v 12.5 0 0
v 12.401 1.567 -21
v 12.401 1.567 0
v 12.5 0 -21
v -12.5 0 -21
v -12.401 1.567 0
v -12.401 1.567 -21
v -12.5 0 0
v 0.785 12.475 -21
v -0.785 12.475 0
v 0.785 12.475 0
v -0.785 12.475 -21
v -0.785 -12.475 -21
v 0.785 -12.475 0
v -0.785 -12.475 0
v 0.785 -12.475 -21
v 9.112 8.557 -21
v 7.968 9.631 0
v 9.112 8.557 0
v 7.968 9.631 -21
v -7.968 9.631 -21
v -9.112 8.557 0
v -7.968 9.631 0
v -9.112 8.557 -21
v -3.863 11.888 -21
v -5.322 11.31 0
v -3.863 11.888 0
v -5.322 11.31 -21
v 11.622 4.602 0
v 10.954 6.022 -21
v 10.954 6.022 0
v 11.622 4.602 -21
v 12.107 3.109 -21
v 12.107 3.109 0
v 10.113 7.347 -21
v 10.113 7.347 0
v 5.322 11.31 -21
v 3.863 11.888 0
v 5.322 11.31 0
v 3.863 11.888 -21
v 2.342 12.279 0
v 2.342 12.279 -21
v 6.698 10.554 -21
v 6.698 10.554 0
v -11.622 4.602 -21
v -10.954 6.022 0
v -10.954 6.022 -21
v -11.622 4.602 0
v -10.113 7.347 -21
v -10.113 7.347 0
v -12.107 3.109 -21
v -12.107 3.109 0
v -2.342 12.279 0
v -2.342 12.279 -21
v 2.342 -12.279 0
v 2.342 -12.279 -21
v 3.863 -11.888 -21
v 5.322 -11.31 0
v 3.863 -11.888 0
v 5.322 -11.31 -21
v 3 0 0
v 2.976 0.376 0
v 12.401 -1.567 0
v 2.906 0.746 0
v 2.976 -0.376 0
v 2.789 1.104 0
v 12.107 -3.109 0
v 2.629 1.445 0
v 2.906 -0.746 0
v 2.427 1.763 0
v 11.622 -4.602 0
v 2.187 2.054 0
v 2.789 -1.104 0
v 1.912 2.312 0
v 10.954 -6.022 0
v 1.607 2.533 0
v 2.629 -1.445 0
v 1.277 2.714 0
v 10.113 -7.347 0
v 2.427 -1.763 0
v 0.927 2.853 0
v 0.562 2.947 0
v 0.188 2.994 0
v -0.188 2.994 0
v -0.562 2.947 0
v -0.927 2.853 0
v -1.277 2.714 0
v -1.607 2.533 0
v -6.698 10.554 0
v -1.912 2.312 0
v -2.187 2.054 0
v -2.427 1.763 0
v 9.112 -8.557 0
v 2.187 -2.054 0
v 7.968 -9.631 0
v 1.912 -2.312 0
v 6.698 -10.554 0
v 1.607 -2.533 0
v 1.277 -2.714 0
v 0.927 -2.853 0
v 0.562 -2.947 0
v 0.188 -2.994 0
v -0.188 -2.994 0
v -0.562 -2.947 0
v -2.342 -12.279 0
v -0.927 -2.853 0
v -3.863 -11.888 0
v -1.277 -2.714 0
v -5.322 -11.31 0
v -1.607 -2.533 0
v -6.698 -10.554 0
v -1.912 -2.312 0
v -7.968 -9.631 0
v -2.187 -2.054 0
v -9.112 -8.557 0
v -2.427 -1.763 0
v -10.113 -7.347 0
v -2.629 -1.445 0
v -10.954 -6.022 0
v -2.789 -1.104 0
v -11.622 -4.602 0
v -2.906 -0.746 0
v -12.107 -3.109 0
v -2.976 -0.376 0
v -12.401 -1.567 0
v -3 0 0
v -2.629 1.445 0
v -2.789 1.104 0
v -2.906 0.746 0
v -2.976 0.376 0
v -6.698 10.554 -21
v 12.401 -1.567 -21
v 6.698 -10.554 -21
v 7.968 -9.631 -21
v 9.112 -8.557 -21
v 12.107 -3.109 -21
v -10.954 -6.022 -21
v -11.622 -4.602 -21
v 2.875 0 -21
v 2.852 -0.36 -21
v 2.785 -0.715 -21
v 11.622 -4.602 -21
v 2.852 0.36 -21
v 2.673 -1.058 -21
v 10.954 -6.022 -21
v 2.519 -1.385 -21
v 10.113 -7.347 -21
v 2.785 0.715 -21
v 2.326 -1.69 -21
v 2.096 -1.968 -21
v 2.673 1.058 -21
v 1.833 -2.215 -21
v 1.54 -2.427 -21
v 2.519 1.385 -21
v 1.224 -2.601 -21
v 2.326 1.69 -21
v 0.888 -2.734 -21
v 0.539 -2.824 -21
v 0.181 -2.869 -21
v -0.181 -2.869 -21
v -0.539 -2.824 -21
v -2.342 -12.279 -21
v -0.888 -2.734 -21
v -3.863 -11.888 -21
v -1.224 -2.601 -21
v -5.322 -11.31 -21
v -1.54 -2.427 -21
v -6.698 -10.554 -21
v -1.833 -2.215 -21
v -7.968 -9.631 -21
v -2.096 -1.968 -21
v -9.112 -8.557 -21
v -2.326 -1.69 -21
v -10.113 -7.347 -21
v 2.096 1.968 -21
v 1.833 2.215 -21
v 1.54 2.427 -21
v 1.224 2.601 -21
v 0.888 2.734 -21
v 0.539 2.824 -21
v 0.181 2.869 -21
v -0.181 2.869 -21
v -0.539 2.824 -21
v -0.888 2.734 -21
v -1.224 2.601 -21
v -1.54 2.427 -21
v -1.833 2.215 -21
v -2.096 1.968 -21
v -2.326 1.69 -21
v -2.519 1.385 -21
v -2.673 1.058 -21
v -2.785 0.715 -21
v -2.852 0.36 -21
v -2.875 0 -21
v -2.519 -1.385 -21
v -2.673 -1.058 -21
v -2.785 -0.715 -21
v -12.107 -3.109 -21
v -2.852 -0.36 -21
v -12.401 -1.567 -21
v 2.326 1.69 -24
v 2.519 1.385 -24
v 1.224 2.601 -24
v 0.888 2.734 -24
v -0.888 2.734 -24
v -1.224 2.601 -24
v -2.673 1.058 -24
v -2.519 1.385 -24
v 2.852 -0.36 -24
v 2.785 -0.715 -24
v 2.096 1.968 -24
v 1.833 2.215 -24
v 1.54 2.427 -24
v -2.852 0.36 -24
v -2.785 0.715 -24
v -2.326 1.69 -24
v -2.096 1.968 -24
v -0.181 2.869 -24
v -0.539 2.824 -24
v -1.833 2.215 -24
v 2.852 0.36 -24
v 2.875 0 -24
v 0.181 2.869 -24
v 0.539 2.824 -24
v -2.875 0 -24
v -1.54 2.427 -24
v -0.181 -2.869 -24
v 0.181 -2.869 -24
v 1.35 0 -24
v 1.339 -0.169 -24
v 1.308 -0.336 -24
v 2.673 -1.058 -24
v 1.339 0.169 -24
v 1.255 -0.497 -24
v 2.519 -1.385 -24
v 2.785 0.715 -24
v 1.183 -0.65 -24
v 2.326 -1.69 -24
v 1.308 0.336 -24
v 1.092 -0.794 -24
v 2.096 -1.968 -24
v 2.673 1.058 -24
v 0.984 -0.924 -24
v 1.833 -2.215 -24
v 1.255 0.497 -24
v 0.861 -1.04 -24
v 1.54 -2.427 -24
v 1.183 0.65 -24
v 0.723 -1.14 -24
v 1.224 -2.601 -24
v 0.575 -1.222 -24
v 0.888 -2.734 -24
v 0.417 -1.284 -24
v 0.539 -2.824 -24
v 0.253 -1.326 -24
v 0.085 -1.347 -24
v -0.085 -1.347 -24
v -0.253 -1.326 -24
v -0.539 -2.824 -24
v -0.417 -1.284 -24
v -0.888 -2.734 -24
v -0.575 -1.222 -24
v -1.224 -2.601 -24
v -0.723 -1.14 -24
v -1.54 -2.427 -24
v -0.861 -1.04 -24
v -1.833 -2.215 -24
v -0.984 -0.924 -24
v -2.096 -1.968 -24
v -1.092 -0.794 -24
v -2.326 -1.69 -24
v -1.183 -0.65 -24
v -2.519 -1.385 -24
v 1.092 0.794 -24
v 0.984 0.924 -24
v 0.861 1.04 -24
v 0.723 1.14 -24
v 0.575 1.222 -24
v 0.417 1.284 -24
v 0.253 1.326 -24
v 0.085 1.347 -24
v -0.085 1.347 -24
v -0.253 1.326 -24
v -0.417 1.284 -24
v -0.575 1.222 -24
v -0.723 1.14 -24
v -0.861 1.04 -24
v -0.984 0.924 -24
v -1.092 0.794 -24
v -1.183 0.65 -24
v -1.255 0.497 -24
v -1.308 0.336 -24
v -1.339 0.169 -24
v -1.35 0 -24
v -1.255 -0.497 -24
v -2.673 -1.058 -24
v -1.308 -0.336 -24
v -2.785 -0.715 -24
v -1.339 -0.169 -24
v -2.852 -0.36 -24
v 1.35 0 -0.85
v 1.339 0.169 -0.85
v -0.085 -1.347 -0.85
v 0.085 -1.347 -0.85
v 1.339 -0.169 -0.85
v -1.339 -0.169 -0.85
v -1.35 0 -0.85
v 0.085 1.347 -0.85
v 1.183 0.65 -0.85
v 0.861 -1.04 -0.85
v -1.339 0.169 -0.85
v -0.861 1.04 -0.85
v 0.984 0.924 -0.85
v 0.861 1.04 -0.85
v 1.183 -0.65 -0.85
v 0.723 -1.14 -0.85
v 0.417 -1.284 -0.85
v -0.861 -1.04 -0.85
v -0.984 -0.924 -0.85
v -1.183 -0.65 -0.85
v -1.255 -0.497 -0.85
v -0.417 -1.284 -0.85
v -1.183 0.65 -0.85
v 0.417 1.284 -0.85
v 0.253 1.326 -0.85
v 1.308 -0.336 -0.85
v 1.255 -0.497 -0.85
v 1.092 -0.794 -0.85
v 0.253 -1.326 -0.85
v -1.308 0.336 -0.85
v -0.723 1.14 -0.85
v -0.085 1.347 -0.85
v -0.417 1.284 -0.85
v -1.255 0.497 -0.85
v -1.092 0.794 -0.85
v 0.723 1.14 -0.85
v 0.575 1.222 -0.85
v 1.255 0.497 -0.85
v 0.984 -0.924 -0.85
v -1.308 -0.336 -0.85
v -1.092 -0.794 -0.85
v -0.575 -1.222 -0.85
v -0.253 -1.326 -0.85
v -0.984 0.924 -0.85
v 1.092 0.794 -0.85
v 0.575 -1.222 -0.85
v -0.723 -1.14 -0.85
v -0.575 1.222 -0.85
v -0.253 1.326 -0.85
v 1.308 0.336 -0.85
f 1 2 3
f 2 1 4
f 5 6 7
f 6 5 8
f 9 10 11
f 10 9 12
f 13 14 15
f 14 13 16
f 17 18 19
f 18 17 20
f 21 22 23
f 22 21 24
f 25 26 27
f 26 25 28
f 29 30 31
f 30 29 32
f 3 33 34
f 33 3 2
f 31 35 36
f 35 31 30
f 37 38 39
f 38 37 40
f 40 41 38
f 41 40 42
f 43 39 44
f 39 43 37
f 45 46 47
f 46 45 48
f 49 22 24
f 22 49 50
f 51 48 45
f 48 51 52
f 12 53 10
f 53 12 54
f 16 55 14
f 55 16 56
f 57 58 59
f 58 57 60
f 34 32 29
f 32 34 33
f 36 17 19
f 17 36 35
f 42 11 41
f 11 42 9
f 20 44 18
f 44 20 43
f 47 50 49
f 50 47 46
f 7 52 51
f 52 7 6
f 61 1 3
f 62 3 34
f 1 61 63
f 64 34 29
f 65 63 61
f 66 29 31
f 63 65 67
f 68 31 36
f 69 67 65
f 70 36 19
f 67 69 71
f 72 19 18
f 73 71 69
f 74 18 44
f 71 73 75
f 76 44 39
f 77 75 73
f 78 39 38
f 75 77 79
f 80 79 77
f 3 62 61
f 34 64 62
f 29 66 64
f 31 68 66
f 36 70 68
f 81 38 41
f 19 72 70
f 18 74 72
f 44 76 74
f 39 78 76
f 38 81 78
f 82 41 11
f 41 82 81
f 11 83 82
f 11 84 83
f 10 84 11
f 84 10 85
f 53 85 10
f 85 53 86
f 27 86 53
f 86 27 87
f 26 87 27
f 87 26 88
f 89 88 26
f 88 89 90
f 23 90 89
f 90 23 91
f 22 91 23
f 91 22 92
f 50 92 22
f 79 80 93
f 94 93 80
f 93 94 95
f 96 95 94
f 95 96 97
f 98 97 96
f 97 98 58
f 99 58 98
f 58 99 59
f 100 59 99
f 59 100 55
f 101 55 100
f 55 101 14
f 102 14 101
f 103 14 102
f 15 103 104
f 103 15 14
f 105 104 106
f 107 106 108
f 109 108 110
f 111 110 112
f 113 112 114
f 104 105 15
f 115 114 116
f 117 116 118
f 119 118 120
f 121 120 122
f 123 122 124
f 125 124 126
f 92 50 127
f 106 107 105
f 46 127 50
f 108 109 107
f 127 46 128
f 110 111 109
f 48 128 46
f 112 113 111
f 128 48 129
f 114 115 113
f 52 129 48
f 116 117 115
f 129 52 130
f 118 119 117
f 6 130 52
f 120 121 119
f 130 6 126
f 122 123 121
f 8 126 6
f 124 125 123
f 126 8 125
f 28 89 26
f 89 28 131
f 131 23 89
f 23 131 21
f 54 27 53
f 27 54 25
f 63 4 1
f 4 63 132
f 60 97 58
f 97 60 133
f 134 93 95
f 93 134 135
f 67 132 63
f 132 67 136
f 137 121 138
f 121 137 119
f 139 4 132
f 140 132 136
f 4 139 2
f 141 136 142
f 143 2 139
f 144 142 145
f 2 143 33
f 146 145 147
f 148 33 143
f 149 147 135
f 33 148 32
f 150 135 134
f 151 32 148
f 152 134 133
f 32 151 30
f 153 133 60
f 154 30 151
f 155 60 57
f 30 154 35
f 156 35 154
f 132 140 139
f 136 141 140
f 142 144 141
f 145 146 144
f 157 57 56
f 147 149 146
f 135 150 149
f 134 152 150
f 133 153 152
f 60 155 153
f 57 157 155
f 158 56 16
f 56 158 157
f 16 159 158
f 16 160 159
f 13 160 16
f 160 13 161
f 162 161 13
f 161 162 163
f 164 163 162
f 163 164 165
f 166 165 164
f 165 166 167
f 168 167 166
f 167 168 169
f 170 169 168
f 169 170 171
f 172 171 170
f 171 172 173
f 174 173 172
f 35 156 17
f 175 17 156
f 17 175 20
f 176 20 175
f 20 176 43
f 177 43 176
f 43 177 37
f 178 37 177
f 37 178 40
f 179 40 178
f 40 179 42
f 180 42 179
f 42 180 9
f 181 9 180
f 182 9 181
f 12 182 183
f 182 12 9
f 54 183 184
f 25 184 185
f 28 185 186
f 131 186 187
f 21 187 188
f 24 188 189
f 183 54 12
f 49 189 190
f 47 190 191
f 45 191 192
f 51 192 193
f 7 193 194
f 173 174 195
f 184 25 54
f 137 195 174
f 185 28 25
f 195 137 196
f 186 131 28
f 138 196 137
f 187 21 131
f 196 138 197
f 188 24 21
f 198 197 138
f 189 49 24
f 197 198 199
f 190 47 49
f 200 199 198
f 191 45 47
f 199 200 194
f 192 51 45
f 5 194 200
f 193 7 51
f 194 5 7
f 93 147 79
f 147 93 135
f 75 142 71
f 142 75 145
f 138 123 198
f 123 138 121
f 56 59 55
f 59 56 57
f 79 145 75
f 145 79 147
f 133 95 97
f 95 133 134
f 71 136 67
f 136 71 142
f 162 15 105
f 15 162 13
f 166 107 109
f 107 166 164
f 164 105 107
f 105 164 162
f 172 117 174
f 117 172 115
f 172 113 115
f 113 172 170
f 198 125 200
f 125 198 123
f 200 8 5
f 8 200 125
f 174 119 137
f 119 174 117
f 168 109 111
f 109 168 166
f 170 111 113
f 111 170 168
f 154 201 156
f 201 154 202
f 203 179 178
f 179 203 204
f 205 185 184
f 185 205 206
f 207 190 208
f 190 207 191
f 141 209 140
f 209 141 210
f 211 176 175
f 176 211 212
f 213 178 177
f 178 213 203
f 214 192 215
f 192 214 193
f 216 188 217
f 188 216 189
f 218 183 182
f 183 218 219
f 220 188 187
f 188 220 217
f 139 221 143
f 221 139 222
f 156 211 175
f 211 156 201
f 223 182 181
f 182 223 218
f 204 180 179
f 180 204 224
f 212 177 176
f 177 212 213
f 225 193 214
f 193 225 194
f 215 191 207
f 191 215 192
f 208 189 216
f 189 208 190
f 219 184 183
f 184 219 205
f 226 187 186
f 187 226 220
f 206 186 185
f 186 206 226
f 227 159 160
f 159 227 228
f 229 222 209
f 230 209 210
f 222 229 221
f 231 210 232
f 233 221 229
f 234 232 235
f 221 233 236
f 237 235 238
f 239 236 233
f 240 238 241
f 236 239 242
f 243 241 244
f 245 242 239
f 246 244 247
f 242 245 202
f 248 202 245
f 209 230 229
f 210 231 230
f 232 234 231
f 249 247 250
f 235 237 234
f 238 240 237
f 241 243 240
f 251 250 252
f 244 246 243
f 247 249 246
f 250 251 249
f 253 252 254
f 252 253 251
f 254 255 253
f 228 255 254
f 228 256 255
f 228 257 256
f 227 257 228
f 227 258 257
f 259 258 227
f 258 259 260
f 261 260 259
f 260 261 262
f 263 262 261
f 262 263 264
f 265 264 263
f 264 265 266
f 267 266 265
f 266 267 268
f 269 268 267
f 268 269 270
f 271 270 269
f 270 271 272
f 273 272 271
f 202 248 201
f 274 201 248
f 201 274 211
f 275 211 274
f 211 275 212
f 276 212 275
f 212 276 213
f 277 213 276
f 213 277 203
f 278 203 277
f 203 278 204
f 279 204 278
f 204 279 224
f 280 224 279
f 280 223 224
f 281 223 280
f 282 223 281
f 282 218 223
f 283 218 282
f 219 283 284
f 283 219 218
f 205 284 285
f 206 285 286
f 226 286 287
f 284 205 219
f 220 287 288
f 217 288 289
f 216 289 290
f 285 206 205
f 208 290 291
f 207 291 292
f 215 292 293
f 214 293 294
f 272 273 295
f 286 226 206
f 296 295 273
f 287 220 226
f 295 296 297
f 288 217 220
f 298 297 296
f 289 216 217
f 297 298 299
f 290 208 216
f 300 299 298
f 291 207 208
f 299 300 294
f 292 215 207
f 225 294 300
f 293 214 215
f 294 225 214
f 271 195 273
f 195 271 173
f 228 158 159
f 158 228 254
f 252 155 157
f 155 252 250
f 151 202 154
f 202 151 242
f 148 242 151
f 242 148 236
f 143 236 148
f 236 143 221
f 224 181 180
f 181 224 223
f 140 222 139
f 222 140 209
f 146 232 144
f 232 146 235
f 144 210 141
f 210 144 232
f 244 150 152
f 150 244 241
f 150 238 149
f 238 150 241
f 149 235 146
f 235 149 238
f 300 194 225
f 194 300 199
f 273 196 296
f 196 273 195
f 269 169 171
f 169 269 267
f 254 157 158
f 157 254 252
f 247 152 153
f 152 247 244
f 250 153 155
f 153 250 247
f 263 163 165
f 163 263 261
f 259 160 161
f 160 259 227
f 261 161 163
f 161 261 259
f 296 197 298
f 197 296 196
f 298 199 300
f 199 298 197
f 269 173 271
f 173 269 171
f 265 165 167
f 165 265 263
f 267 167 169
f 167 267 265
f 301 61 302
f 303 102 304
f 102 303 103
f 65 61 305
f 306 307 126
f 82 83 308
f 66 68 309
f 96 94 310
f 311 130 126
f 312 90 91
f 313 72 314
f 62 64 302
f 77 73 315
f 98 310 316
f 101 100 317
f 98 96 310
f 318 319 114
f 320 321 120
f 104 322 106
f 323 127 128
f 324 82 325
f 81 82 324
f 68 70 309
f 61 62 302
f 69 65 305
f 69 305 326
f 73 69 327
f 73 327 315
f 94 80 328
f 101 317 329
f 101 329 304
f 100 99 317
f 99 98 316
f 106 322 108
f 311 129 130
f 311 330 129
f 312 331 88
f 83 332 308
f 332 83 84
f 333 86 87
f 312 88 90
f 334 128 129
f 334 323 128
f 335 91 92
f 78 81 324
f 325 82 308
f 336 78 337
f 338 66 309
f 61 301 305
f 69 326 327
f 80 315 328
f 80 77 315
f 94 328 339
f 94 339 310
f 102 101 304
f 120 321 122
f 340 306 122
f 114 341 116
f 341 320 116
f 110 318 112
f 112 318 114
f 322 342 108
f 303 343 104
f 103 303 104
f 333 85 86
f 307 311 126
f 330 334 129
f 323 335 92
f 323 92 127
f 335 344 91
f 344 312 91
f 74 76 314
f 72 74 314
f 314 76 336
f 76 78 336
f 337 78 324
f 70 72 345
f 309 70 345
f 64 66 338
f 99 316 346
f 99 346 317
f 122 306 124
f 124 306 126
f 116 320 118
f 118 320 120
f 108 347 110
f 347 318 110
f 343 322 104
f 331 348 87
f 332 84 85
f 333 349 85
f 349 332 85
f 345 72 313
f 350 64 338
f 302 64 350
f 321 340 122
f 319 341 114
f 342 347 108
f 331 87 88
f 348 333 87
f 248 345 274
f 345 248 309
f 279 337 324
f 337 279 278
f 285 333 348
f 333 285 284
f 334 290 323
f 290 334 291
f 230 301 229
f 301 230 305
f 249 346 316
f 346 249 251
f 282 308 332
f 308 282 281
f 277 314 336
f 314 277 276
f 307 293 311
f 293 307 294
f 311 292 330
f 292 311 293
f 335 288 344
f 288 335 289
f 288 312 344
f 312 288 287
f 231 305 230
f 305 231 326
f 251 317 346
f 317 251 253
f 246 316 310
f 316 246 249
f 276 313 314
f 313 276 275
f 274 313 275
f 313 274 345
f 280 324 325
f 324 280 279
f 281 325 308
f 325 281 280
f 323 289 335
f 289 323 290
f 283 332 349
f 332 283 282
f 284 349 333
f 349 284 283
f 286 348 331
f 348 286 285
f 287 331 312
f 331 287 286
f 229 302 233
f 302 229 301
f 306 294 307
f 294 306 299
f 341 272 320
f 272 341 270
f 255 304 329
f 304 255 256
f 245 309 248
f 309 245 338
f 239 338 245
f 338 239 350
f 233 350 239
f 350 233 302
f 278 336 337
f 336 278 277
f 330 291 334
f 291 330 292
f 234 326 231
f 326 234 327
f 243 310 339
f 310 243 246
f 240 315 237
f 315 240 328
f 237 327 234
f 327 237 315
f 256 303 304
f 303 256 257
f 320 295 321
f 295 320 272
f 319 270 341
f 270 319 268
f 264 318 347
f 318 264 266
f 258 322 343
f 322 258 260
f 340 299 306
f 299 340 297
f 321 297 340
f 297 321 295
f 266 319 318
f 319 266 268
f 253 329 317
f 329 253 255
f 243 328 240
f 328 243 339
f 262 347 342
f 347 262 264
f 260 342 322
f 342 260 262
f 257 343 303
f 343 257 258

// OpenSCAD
$fn = 50;

difference() {
	union() {
		translate(v = [0, 0, -21.0]) {
			cylinder(h = 21, r = 12.5);
		}
		#translate(v = [0, 0, -24.0]) {
			cylinder(h = 24, r = 2.875);
		}
	}
	union() {
		translate(v = [0, 0, 0]) {
			rotate(a = [0, 0, 0]) {
				difference() {
					union() {
						translate(v = [0, 0, -24.0]) {
							cylinder(h = 24, r = 1.0);
						}
						translate(v = [0, 0, -0.85]) {
							cylinder(h = 0.85, r1 = 1.35, r2 = 3.0);
						}
						translate(v = [0, 0, -24.0]) {
							cylinder(h = 24, r = 1.35);
						}
						translate(v = [0, 0, -24.0]) {
							cylinder(h = 24, r = 1.0);
						}
					}
					union();
				}
			}
		}
	}
}
